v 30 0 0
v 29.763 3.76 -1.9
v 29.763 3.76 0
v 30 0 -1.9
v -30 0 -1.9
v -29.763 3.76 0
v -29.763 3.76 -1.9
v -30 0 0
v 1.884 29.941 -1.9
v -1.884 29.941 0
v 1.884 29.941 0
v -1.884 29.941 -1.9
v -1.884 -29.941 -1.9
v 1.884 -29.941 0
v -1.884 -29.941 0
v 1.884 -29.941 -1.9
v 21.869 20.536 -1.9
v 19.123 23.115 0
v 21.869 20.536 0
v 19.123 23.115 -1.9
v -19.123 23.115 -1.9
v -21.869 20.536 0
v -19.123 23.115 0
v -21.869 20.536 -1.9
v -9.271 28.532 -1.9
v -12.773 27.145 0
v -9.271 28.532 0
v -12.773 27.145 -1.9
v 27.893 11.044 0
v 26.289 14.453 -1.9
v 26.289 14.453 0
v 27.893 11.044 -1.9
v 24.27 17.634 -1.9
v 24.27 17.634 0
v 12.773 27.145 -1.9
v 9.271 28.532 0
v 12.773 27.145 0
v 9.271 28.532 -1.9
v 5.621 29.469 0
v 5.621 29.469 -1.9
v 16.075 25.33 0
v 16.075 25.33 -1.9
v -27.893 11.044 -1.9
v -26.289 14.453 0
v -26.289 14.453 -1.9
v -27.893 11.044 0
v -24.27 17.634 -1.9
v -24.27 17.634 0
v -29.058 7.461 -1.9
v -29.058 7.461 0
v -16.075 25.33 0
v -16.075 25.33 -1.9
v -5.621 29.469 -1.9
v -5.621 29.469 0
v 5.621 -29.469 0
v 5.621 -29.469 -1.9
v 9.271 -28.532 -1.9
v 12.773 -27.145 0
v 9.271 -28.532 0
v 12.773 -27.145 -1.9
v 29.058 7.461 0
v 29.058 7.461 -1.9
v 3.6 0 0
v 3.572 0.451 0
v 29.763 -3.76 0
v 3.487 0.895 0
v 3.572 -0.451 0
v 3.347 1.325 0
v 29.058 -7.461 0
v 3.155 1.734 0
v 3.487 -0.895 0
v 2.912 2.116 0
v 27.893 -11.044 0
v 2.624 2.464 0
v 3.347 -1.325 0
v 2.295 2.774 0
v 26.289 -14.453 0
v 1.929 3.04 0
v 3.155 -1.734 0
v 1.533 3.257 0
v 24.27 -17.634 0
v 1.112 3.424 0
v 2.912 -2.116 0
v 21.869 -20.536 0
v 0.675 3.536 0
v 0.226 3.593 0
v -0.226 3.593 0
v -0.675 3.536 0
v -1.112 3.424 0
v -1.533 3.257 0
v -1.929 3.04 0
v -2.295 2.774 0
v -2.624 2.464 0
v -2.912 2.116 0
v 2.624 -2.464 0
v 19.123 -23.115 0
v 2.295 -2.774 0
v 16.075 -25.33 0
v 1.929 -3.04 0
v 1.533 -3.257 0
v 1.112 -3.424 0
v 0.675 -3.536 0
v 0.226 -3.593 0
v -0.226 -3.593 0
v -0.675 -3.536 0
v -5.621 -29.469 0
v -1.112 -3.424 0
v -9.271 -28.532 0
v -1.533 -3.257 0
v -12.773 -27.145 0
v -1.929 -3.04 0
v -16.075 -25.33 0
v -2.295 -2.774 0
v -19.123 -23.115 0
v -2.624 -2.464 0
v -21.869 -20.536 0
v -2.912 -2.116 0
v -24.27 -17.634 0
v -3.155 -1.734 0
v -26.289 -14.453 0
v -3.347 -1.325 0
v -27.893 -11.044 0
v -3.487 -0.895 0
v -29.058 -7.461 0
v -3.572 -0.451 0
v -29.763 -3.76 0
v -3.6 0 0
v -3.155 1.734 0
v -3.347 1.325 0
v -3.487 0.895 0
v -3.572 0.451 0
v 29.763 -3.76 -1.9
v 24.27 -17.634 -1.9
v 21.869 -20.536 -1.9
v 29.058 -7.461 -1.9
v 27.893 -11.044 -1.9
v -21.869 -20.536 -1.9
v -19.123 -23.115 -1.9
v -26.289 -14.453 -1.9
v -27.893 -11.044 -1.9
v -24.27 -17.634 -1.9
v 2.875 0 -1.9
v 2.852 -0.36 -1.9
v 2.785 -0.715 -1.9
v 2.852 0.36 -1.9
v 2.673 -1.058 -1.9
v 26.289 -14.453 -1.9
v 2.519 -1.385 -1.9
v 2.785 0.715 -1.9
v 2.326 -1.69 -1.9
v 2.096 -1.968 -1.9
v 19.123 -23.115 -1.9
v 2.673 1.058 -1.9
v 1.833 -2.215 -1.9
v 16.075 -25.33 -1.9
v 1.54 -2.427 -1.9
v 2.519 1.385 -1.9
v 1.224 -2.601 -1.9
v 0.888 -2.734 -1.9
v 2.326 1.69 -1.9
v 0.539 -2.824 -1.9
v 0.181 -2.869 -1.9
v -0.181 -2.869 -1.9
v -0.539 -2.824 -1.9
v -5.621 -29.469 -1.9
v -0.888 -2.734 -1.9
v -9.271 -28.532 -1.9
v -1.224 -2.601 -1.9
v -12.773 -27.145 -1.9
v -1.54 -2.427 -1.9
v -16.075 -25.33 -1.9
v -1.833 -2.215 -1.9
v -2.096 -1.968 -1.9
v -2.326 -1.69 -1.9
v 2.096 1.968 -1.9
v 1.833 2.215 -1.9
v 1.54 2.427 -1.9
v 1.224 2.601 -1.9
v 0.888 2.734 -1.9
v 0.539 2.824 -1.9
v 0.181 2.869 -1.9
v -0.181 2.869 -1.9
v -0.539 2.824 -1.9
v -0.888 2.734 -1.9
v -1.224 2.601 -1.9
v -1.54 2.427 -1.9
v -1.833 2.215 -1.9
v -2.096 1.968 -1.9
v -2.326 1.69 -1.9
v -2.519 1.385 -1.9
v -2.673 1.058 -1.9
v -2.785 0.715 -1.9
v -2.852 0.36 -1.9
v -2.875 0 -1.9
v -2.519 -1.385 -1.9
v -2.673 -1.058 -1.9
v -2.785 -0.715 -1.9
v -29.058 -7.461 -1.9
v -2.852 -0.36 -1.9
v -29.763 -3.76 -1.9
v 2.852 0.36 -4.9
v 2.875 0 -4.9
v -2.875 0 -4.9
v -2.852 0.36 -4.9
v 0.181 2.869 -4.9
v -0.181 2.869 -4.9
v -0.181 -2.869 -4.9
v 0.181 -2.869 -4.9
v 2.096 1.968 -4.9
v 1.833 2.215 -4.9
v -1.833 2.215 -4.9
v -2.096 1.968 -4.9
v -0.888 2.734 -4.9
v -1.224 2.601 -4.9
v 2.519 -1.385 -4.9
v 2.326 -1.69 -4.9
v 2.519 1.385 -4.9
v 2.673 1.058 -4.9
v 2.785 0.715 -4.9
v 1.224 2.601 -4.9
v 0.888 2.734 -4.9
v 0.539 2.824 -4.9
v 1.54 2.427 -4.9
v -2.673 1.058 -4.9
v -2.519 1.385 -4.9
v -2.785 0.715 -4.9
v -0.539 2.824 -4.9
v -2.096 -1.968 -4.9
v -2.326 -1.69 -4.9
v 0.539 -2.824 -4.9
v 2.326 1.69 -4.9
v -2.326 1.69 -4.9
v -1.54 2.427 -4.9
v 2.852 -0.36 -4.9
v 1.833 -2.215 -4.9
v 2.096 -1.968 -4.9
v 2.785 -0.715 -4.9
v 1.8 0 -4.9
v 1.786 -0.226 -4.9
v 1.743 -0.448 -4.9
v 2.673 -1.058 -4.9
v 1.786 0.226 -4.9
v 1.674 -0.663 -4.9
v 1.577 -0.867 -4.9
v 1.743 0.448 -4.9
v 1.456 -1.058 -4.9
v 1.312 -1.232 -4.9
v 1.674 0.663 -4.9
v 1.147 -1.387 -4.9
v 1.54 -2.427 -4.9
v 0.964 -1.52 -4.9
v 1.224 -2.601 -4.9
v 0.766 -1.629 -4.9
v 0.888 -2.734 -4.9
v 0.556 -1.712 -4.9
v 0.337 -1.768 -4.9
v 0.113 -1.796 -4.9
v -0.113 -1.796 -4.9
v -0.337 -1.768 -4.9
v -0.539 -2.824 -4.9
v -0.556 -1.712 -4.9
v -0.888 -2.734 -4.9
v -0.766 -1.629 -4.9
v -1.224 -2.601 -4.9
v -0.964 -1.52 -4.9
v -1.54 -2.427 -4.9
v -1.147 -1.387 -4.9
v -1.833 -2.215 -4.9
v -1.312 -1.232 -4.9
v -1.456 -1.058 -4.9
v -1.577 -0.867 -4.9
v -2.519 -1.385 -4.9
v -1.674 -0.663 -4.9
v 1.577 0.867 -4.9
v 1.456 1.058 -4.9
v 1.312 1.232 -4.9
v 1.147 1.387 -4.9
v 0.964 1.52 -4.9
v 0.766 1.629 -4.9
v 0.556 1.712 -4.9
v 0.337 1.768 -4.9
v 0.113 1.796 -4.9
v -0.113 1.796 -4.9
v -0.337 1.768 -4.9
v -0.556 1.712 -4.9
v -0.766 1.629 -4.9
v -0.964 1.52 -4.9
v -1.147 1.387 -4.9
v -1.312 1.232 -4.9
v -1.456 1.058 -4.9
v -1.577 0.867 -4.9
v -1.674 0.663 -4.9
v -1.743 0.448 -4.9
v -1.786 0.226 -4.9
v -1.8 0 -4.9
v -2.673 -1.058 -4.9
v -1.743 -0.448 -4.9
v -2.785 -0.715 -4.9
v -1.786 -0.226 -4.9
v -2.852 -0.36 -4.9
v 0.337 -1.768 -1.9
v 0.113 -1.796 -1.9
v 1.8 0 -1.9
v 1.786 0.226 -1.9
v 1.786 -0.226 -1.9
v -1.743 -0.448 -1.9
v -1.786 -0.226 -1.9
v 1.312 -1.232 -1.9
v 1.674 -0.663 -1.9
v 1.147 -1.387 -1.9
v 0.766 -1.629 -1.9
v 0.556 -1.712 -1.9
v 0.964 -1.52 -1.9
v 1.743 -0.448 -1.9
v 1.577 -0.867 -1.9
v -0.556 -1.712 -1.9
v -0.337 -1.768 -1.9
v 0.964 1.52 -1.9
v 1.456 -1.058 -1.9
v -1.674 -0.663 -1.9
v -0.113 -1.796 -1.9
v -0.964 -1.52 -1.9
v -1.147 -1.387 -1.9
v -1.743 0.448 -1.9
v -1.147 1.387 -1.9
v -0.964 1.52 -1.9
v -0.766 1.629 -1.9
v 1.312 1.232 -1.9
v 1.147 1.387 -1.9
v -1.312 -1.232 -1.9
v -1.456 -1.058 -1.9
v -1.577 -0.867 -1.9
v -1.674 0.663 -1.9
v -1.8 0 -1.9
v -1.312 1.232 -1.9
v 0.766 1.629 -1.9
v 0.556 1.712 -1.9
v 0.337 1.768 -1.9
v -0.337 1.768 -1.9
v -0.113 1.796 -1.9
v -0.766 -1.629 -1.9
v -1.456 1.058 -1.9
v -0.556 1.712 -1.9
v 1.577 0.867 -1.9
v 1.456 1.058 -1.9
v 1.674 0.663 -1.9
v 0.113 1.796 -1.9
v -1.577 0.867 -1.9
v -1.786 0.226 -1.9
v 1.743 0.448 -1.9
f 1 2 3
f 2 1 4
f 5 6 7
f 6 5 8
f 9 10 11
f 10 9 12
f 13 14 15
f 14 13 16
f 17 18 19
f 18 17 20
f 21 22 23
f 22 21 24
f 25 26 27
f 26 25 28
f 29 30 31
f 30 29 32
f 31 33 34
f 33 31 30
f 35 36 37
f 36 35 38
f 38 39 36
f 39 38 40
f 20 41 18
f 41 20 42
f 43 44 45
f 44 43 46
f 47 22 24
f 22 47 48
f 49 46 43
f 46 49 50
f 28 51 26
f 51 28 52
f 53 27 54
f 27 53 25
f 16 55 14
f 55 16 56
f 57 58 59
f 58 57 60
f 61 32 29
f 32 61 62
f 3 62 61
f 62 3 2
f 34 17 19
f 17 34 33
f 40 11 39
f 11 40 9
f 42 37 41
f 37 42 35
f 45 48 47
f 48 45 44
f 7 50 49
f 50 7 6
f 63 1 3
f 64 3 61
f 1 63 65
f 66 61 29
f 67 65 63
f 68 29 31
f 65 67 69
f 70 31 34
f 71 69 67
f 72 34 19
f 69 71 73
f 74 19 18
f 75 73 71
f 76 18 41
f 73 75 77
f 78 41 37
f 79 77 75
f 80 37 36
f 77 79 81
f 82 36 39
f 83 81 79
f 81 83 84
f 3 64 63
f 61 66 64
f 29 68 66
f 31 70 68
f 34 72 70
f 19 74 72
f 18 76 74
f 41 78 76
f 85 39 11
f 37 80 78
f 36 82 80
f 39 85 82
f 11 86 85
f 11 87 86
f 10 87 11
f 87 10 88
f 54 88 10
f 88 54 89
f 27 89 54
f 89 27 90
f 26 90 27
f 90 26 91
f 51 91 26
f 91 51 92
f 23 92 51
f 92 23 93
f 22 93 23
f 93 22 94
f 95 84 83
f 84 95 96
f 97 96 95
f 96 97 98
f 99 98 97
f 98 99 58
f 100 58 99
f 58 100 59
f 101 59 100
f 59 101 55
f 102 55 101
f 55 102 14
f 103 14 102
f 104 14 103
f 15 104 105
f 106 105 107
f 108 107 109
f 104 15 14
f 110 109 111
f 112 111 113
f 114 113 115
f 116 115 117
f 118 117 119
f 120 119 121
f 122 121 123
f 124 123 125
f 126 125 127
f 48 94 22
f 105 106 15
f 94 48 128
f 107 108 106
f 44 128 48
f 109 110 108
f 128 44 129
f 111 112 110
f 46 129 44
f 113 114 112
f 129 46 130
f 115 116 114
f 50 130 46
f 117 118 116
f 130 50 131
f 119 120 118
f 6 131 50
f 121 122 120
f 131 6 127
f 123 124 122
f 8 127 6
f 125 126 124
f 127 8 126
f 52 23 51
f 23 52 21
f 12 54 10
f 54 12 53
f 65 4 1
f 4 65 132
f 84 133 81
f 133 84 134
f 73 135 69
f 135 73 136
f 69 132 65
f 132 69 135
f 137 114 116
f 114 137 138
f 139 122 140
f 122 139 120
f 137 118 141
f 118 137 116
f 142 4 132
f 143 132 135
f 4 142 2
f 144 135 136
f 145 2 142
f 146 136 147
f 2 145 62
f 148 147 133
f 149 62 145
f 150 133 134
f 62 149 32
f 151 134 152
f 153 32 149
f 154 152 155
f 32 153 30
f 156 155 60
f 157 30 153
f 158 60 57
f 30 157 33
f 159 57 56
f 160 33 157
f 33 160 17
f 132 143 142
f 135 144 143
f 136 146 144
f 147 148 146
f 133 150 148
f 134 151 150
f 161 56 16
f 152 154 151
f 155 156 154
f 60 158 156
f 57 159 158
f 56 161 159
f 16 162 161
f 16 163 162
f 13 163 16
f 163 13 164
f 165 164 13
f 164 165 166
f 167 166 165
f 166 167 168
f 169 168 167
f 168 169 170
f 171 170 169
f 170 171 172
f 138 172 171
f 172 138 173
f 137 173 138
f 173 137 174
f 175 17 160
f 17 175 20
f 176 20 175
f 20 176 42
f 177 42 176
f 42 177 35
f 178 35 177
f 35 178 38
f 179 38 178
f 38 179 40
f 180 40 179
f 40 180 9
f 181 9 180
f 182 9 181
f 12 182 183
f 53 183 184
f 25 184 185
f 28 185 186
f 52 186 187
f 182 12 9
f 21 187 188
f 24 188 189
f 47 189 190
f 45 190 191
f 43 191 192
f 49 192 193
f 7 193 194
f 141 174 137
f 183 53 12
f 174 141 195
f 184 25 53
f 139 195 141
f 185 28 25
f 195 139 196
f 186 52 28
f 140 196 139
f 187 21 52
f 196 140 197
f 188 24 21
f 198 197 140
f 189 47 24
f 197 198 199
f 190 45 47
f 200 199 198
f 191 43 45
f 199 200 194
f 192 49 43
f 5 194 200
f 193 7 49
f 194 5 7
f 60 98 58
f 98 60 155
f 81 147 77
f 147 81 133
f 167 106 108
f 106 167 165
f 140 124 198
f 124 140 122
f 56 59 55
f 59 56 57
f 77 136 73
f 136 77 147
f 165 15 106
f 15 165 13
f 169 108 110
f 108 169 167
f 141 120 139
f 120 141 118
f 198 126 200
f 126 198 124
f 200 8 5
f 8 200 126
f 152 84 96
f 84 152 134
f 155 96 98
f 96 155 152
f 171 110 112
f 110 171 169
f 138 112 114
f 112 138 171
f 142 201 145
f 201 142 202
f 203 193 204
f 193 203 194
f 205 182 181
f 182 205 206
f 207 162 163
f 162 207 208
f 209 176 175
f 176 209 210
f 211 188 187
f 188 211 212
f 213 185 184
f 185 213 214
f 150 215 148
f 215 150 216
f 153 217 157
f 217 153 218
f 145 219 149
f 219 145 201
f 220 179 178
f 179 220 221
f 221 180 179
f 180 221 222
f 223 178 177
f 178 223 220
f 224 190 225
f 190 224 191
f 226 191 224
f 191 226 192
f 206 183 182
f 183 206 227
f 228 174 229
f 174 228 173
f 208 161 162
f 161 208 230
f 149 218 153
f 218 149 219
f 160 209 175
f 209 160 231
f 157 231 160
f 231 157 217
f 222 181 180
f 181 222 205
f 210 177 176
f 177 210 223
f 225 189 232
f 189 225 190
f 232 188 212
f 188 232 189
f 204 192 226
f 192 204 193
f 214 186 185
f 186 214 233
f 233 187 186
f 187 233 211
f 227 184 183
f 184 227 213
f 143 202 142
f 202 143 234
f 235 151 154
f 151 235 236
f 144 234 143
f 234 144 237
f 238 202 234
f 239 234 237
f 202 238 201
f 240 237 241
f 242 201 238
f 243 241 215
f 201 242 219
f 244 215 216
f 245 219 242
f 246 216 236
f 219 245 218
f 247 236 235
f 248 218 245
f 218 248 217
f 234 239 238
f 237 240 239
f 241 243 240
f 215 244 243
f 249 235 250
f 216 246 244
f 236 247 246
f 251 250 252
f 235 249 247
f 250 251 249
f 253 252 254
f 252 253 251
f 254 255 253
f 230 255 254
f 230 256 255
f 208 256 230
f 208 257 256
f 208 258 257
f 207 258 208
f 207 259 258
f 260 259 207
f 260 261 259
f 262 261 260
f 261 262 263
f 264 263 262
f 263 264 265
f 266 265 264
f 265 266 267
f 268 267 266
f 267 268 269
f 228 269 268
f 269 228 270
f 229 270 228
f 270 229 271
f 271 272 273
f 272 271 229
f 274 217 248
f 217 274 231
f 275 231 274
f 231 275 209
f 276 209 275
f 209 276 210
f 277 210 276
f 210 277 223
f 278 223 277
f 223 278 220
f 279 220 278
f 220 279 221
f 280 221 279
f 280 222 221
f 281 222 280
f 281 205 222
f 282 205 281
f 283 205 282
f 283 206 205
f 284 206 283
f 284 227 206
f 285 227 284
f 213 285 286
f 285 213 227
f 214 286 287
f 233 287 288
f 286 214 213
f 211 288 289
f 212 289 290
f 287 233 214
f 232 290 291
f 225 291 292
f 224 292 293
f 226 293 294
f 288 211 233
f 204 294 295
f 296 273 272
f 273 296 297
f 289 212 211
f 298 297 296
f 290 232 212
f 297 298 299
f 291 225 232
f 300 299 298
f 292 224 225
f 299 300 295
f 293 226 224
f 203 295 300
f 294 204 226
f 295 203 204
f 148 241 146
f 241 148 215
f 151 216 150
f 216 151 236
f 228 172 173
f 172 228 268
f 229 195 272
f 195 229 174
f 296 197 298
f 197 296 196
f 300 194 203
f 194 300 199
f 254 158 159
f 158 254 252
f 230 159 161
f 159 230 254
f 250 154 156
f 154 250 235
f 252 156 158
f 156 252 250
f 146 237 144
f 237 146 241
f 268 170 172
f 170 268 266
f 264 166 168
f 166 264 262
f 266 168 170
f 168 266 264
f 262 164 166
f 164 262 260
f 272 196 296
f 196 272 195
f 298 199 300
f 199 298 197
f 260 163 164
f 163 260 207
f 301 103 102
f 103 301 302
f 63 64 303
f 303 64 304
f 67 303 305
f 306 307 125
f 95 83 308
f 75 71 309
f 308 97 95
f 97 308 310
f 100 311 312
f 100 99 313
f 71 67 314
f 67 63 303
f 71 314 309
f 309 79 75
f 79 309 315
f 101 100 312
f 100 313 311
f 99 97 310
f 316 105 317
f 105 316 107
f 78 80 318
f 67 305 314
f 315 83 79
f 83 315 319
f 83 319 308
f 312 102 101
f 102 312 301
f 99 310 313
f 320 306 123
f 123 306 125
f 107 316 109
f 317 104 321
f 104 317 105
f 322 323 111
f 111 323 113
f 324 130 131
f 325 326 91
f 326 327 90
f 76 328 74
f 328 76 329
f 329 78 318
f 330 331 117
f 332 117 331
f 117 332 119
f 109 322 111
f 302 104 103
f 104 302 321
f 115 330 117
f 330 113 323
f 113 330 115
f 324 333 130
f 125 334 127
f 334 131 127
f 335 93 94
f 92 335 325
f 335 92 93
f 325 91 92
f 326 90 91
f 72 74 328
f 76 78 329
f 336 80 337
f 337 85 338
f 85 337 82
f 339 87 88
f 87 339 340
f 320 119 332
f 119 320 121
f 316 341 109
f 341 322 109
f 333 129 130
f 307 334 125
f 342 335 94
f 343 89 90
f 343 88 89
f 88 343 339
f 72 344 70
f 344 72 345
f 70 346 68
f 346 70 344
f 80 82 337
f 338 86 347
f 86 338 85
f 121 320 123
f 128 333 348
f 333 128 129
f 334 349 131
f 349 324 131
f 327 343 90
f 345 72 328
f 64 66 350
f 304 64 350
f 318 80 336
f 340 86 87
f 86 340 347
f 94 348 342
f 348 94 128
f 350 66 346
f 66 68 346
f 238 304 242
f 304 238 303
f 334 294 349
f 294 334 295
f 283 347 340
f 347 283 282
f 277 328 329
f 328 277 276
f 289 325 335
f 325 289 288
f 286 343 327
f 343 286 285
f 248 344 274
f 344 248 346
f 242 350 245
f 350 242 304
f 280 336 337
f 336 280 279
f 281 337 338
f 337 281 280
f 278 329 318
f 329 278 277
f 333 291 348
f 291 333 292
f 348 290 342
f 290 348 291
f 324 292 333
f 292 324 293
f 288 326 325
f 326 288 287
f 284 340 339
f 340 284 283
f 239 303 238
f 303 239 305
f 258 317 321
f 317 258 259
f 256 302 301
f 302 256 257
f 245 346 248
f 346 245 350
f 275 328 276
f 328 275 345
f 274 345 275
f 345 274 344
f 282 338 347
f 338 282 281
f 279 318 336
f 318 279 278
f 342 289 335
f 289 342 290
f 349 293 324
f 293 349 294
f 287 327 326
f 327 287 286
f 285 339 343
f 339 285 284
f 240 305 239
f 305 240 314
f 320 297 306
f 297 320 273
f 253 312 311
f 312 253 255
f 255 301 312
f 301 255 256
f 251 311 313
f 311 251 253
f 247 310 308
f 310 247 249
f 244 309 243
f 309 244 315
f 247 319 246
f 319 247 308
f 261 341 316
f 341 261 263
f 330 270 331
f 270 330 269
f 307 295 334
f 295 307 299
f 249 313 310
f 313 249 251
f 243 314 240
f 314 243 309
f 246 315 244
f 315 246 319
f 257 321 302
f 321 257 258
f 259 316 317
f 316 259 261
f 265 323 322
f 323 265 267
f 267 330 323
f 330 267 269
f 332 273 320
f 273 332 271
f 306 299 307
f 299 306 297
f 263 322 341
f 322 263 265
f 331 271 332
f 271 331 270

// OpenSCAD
$fn = 50;

difference() {
	union() {
		translate(v = [0, 0, -1.9]) {
			cylinder(h = 1.9, r = 30.0);
		}
		#translate(v = [0, 0, -4.9]) {
			cylinder(h = 4.9, r = 2.875);
		}
	}
	union() {
		translate(v = [0, 0, 0]) {
			rotate(a = [0, 0, 0]) {
				difference() {
					union() {
						translate(v = [0, 0, -4.9]) {
							cylinder(h = 4.9, r = 1.5);
						}
						translate(v = [0, 0, -1.9]) {
							cylinder(h = 1.9, r1 = 1.8, r2 = 3.6);
						}
						translate(v = [0, 0, -4.9]) {
							cylinder(h = 4.9, r = 1.8);
						}
						translate(v = [0, 0, -4.9]) {
							cylinder(h = 4.9, r = 1.5);
						}
					}
					union();
				}
			}
		}
	}
}
